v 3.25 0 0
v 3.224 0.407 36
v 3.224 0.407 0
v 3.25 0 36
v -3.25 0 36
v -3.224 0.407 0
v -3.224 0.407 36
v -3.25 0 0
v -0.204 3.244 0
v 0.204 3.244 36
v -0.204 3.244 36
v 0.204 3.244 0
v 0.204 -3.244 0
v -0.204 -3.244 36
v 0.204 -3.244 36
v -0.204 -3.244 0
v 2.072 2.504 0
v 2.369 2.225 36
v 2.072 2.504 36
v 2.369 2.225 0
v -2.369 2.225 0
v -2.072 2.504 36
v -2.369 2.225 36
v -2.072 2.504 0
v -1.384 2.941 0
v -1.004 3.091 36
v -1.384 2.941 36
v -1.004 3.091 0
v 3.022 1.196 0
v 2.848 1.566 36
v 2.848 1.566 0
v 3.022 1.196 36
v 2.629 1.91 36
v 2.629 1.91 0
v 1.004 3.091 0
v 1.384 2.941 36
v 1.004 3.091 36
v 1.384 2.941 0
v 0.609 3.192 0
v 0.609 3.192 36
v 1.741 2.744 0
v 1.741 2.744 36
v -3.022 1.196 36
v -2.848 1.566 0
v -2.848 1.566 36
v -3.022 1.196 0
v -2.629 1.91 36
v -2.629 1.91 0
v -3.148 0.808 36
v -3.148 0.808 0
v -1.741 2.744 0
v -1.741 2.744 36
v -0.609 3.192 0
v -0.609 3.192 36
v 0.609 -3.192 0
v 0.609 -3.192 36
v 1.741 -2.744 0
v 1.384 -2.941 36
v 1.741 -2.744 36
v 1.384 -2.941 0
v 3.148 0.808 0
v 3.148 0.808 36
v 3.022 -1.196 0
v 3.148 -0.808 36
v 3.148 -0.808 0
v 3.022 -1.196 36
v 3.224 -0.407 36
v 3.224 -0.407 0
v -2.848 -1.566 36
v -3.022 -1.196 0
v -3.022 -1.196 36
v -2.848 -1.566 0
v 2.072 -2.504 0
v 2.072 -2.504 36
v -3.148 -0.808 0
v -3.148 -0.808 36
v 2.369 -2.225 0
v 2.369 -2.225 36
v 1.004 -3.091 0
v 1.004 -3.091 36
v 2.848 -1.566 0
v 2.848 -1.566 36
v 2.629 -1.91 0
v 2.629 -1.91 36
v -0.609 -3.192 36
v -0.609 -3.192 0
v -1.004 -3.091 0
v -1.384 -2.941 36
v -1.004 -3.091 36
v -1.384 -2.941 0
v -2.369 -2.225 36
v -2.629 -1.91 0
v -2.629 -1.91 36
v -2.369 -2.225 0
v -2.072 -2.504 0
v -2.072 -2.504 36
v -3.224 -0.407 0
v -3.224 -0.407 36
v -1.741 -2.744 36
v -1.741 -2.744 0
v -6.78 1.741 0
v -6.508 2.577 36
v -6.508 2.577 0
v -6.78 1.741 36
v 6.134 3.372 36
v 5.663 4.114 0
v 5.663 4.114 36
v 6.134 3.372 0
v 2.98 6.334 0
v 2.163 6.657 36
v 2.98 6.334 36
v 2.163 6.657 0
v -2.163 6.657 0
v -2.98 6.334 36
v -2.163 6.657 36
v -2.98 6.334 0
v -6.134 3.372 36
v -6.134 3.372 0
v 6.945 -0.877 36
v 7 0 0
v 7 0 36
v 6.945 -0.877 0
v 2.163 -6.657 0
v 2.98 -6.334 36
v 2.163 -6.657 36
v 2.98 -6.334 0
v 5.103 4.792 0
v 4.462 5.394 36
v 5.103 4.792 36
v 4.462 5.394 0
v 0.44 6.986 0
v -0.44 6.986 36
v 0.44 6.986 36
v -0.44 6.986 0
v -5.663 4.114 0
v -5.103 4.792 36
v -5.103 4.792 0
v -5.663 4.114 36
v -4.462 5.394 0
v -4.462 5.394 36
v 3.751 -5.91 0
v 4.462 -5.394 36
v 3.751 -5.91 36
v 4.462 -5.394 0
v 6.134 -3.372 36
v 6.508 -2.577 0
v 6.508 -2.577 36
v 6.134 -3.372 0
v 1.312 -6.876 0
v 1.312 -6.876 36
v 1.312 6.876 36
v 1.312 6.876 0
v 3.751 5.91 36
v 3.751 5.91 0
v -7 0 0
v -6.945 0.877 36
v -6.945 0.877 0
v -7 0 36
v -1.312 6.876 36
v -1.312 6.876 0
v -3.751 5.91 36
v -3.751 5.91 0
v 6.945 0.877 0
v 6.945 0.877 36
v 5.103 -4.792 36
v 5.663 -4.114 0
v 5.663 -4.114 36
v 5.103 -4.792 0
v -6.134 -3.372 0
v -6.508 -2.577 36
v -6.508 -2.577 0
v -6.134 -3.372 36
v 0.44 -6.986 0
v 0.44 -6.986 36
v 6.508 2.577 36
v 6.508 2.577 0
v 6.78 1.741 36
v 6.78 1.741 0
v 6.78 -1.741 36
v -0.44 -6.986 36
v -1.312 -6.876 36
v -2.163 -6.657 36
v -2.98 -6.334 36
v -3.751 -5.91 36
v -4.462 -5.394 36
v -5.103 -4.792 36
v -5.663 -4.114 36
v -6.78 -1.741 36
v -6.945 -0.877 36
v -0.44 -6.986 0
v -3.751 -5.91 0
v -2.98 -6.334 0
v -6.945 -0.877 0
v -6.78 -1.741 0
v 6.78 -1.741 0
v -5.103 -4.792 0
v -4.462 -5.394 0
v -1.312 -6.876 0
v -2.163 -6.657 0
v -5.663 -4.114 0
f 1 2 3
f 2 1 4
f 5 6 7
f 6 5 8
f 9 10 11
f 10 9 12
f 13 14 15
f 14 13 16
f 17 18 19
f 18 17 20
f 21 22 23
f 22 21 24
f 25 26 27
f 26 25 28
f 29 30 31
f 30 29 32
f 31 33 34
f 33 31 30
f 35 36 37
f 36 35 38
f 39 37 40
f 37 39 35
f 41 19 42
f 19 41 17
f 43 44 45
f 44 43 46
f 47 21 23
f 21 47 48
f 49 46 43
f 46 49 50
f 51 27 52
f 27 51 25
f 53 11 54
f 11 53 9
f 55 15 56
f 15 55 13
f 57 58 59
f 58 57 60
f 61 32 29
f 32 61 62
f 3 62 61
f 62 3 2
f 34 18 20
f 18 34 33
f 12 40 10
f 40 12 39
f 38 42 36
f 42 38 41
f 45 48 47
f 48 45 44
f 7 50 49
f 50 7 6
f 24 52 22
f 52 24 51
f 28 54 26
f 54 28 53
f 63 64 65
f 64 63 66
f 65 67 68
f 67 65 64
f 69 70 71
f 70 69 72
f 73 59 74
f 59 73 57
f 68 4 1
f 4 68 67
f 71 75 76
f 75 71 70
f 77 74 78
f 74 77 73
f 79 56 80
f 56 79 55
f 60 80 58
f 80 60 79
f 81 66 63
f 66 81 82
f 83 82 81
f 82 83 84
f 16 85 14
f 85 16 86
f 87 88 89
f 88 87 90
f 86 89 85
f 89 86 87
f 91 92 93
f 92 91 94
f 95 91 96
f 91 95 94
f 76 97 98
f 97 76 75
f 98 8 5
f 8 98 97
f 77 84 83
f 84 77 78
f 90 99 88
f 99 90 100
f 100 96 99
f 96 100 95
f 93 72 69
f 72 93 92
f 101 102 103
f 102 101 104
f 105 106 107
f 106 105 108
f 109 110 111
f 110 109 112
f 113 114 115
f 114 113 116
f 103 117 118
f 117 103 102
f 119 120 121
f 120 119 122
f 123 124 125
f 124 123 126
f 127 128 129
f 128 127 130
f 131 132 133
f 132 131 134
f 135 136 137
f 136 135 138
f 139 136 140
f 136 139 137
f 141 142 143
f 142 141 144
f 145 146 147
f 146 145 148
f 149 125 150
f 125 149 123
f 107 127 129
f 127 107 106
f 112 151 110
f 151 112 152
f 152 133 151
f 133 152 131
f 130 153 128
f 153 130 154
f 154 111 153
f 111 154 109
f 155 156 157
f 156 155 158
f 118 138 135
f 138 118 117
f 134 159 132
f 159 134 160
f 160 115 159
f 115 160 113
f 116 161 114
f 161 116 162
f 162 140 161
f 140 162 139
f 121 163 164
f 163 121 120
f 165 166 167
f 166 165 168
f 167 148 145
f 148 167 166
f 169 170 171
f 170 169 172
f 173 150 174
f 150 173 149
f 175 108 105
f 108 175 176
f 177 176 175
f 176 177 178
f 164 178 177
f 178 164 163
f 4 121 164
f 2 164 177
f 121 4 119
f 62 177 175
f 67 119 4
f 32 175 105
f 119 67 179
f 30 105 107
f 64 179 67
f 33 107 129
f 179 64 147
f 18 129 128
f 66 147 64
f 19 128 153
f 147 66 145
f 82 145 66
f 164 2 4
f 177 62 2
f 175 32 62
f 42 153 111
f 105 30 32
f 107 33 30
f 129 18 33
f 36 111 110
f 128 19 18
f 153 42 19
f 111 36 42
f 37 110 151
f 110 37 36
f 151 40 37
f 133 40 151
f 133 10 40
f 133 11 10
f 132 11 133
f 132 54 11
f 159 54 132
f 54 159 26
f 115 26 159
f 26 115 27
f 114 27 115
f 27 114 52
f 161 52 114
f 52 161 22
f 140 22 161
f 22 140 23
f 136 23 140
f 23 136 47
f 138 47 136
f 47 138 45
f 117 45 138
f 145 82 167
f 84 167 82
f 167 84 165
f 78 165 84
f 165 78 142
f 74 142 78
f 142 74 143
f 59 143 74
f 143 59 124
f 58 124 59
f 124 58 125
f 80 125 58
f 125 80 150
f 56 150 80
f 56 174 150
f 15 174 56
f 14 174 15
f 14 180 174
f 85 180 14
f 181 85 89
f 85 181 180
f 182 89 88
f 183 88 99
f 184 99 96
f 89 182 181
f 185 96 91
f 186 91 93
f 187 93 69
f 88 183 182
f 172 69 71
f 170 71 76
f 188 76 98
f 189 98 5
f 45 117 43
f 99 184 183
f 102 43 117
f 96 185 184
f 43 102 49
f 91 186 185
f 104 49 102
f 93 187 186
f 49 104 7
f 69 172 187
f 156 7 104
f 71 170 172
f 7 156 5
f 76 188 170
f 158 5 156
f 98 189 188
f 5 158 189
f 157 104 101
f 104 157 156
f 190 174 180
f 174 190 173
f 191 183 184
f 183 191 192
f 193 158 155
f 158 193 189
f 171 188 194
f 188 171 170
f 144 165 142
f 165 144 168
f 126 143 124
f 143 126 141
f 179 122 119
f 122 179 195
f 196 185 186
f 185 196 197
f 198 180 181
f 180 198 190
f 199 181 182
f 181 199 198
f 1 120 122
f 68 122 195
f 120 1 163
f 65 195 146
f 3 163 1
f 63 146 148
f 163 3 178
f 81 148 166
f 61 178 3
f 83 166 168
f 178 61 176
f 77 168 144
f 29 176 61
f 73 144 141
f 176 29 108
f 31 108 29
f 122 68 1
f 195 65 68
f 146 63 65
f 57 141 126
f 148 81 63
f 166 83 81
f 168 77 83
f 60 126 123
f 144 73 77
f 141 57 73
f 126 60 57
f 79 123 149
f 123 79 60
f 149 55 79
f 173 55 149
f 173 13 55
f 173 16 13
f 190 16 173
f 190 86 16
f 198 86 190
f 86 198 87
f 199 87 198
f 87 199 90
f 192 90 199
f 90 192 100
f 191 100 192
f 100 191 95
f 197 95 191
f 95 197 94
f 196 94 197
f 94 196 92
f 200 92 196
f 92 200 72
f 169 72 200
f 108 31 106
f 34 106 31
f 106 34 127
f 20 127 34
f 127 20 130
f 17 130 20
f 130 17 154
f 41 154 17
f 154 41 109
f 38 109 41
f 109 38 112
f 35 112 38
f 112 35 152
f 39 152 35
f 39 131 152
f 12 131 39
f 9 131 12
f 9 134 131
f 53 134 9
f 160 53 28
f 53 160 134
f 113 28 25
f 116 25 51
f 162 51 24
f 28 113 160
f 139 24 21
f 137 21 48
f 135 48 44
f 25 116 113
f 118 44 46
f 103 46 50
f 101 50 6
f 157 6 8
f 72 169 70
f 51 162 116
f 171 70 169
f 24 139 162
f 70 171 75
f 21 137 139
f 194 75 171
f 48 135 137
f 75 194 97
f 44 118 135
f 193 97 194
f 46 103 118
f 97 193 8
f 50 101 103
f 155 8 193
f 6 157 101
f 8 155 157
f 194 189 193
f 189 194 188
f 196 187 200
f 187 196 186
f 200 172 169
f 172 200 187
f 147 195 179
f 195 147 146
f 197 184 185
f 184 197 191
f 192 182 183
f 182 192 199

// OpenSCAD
$fn = 50;


difference() {
	union() {
		cylinder(h = 36, r = 7.0000000000);
	}
	union() {
		translate(v = [0, 0, -100]) {
			cylinder(h = 200, r = 3.2500000000);
		}
	}
}
